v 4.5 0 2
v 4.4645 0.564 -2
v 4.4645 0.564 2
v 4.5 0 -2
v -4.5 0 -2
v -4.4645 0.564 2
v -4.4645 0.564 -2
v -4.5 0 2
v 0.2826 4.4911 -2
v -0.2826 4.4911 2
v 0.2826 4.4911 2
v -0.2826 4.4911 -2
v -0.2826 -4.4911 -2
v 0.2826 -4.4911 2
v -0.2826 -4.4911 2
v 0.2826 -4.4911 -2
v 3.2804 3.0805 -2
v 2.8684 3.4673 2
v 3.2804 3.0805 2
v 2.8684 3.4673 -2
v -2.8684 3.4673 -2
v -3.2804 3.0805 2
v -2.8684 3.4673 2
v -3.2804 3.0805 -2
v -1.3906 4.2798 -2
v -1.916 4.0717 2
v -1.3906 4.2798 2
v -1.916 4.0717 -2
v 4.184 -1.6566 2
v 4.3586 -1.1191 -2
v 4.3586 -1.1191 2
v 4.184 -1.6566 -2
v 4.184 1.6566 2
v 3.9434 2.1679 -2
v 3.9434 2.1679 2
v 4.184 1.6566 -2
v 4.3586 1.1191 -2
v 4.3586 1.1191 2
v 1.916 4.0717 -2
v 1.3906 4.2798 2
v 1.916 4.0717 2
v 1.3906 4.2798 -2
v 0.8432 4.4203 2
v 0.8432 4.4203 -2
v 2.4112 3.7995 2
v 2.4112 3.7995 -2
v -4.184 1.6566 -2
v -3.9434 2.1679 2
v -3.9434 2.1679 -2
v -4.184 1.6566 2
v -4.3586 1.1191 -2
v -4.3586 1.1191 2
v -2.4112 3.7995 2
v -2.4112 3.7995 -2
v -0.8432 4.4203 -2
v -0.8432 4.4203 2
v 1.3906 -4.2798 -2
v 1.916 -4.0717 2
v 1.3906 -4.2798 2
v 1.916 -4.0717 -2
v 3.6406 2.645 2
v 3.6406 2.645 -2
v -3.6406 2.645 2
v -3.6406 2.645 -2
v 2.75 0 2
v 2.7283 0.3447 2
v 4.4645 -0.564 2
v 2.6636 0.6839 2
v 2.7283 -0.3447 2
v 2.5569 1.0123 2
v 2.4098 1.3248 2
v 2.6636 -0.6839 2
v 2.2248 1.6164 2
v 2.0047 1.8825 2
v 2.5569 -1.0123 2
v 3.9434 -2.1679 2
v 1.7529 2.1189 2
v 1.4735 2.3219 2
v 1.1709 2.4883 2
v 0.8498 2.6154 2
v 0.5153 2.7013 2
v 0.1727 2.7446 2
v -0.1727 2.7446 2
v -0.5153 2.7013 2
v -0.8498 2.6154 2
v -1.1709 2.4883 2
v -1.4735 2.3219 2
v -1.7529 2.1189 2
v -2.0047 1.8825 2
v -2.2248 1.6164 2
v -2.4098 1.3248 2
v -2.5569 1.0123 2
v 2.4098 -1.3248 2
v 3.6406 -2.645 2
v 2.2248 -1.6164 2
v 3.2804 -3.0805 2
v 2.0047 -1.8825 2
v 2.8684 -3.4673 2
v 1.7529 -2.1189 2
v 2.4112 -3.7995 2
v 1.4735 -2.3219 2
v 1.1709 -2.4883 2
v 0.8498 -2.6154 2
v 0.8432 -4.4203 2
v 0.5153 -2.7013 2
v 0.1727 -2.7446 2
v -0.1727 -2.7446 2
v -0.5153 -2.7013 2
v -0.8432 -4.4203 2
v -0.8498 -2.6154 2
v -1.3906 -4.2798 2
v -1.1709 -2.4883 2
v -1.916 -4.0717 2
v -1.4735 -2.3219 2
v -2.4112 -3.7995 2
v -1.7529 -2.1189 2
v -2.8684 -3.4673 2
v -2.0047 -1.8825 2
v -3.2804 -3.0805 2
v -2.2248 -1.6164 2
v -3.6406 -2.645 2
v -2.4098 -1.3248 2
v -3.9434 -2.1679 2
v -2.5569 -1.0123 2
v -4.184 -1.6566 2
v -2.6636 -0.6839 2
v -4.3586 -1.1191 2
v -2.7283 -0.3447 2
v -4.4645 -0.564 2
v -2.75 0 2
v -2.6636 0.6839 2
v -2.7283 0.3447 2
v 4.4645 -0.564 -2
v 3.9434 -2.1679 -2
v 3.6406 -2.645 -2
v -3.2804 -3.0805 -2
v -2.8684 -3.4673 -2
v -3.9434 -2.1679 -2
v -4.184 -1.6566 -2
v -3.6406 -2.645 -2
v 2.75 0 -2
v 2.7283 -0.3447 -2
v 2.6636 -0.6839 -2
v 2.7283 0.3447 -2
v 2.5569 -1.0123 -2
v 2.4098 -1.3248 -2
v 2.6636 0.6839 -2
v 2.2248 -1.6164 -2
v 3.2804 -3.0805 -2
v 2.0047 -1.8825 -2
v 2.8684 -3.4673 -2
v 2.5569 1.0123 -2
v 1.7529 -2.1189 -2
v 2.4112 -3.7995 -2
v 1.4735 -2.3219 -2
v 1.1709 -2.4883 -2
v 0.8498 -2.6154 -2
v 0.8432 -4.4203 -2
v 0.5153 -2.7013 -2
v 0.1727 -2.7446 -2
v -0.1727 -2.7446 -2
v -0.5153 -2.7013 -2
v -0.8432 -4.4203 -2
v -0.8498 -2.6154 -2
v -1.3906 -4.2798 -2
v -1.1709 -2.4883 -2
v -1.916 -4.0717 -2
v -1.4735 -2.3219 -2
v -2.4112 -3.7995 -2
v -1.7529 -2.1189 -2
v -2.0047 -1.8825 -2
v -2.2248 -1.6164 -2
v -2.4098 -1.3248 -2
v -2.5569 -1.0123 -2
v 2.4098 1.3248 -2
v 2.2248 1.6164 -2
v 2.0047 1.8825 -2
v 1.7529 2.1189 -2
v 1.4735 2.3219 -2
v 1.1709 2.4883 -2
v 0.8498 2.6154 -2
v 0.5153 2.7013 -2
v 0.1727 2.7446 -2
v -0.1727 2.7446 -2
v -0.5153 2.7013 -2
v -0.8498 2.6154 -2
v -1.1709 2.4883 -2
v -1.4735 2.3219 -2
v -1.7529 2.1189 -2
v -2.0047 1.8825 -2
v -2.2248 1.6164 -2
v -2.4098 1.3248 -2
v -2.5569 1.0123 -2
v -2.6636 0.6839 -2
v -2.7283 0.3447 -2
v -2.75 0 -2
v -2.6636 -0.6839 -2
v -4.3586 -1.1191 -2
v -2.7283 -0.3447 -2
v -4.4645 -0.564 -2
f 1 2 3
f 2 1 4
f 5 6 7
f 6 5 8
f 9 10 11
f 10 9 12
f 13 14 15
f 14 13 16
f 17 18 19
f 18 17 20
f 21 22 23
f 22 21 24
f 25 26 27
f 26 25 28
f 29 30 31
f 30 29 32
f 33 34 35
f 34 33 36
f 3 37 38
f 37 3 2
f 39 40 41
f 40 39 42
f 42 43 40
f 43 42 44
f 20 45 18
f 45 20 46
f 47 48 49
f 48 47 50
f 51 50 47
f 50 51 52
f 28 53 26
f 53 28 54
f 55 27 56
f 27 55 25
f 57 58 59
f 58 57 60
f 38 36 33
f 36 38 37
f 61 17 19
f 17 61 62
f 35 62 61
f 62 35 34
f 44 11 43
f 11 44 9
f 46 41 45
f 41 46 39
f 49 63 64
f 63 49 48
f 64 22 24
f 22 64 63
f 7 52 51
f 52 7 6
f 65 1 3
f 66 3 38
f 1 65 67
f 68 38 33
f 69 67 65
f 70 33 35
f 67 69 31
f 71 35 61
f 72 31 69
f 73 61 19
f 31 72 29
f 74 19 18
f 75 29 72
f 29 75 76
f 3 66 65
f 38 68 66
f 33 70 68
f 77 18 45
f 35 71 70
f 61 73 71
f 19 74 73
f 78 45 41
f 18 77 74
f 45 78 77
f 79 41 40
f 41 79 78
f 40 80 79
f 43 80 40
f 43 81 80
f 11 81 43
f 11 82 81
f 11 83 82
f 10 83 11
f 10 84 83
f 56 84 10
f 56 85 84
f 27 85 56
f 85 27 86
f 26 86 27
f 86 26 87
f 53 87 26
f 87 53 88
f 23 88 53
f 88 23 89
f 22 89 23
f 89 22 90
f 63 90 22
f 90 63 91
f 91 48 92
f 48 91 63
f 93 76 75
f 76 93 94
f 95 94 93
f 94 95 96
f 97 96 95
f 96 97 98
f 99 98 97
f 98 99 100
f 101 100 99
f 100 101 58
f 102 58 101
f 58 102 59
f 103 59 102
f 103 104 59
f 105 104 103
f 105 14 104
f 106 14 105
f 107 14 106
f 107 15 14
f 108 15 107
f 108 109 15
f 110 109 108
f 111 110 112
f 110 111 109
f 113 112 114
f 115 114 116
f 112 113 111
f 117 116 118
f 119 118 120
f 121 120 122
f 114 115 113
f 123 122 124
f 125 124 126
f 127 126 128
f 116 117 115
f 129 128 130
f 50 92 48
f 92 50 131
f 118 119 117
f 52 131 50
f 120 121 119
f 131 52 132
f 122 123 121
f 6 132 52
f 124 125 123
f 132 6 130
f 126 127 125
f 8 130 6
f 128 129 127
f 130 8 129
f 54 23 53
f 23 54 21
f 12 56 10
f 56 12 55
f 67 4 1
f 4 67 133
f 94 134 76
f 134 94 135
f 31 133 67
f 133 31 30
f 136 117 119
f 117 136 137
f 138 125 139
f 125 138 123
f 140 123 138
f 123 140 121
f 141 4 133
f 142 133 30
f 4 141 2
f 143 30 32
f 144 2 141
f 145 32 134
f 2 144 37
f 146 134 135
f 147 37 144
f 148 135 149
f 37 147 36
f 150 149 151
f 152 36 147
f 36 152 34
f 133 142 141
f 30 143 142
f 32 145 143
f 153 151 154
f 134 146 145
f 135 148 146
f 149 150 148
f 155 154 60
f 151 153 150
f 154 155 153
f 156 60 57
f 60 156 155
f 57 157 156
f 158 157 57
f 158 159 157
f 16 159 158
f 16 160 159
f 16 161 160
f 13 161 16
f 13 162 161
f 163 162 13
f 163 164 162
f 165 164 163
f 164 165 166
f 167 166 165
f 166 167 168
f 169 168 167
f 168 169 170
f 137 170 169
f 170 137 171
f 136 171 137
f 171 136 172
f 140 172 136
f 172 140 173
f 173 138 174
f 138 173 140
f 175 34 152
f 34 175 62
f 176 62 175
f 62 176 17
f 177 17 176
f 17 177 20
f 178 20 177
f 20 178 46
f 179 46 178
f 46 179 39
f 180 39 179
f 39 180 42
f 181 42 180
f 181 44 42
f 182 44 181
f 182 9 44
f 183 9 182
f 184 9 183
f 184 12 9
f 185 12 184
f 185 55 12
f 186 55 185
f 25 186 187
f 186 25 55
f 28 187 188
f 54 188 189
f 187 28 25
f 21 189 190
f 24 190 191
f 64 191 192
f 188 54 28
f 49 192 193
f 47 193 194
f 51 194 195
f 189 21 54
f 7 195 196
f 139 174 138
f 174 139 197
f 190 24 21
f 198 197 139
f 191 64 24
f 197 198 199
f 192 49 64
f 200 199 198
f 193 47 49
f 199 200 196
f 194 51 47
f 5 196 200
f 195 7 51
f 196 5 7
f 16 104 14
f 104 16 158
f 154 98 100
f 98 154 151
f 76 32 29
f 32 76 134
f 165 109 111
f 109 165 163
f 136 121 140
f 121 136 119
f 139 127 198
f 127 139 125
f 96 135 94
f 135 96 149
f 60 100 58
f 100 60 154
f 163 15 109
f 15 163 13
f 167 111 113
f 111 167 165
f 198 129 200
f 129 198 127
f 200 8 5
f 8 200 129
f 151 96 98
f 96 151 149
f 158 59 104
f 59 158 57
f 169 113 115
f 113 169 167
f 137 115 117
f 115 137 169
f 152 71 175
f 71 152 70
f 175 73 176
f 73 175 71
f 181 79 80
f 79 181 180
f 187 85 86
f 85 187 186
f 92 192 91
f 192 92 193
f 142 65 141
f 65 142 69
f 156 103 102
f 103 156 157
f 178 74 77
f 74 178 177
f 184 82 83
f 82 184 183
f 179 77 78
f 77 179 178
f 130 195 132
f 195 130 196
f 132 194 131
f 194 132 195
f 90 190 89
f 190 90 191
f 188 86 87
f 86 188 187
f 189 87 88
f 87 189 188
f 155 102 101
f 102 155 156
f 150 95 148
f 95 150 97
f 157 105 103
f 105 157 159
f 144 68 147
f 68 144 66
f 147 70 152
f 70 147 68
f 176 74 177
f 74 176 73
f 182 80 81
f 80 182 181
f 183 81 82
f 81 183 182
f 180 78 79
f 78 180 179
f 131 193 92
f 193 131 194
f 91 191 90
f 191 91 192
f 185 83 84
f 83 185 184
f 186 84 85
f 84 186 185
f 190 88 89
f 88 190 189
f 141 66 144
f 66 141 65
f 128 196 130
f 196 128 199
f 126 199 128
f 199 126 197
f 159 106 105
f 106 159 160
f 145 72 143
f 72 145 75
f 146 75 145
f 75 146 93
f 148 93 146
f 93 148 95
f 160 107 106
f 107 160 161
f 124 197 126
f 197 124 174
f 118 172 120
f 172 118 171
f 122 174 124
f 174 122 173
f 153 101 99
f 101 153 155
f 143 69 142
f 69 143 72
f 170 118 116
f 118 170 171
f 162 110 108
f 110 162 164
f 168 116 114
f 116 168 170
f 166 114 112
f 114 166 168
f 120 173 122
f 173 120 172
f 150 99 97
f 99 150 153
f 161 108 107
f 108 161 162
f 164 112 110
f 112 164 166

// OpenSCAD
$fn = 50;


difference() {
	union() {
		translate(v = [0, 0, -2.0000000000]) {
			cylinder(h = 4, r = 4.5000000000);
		}
	}
	union() {
		translate(v = [0, 0, -100.0000000000]) {
			cylinder(h = 200, r = 2.7500000000);
		}
	}
}
